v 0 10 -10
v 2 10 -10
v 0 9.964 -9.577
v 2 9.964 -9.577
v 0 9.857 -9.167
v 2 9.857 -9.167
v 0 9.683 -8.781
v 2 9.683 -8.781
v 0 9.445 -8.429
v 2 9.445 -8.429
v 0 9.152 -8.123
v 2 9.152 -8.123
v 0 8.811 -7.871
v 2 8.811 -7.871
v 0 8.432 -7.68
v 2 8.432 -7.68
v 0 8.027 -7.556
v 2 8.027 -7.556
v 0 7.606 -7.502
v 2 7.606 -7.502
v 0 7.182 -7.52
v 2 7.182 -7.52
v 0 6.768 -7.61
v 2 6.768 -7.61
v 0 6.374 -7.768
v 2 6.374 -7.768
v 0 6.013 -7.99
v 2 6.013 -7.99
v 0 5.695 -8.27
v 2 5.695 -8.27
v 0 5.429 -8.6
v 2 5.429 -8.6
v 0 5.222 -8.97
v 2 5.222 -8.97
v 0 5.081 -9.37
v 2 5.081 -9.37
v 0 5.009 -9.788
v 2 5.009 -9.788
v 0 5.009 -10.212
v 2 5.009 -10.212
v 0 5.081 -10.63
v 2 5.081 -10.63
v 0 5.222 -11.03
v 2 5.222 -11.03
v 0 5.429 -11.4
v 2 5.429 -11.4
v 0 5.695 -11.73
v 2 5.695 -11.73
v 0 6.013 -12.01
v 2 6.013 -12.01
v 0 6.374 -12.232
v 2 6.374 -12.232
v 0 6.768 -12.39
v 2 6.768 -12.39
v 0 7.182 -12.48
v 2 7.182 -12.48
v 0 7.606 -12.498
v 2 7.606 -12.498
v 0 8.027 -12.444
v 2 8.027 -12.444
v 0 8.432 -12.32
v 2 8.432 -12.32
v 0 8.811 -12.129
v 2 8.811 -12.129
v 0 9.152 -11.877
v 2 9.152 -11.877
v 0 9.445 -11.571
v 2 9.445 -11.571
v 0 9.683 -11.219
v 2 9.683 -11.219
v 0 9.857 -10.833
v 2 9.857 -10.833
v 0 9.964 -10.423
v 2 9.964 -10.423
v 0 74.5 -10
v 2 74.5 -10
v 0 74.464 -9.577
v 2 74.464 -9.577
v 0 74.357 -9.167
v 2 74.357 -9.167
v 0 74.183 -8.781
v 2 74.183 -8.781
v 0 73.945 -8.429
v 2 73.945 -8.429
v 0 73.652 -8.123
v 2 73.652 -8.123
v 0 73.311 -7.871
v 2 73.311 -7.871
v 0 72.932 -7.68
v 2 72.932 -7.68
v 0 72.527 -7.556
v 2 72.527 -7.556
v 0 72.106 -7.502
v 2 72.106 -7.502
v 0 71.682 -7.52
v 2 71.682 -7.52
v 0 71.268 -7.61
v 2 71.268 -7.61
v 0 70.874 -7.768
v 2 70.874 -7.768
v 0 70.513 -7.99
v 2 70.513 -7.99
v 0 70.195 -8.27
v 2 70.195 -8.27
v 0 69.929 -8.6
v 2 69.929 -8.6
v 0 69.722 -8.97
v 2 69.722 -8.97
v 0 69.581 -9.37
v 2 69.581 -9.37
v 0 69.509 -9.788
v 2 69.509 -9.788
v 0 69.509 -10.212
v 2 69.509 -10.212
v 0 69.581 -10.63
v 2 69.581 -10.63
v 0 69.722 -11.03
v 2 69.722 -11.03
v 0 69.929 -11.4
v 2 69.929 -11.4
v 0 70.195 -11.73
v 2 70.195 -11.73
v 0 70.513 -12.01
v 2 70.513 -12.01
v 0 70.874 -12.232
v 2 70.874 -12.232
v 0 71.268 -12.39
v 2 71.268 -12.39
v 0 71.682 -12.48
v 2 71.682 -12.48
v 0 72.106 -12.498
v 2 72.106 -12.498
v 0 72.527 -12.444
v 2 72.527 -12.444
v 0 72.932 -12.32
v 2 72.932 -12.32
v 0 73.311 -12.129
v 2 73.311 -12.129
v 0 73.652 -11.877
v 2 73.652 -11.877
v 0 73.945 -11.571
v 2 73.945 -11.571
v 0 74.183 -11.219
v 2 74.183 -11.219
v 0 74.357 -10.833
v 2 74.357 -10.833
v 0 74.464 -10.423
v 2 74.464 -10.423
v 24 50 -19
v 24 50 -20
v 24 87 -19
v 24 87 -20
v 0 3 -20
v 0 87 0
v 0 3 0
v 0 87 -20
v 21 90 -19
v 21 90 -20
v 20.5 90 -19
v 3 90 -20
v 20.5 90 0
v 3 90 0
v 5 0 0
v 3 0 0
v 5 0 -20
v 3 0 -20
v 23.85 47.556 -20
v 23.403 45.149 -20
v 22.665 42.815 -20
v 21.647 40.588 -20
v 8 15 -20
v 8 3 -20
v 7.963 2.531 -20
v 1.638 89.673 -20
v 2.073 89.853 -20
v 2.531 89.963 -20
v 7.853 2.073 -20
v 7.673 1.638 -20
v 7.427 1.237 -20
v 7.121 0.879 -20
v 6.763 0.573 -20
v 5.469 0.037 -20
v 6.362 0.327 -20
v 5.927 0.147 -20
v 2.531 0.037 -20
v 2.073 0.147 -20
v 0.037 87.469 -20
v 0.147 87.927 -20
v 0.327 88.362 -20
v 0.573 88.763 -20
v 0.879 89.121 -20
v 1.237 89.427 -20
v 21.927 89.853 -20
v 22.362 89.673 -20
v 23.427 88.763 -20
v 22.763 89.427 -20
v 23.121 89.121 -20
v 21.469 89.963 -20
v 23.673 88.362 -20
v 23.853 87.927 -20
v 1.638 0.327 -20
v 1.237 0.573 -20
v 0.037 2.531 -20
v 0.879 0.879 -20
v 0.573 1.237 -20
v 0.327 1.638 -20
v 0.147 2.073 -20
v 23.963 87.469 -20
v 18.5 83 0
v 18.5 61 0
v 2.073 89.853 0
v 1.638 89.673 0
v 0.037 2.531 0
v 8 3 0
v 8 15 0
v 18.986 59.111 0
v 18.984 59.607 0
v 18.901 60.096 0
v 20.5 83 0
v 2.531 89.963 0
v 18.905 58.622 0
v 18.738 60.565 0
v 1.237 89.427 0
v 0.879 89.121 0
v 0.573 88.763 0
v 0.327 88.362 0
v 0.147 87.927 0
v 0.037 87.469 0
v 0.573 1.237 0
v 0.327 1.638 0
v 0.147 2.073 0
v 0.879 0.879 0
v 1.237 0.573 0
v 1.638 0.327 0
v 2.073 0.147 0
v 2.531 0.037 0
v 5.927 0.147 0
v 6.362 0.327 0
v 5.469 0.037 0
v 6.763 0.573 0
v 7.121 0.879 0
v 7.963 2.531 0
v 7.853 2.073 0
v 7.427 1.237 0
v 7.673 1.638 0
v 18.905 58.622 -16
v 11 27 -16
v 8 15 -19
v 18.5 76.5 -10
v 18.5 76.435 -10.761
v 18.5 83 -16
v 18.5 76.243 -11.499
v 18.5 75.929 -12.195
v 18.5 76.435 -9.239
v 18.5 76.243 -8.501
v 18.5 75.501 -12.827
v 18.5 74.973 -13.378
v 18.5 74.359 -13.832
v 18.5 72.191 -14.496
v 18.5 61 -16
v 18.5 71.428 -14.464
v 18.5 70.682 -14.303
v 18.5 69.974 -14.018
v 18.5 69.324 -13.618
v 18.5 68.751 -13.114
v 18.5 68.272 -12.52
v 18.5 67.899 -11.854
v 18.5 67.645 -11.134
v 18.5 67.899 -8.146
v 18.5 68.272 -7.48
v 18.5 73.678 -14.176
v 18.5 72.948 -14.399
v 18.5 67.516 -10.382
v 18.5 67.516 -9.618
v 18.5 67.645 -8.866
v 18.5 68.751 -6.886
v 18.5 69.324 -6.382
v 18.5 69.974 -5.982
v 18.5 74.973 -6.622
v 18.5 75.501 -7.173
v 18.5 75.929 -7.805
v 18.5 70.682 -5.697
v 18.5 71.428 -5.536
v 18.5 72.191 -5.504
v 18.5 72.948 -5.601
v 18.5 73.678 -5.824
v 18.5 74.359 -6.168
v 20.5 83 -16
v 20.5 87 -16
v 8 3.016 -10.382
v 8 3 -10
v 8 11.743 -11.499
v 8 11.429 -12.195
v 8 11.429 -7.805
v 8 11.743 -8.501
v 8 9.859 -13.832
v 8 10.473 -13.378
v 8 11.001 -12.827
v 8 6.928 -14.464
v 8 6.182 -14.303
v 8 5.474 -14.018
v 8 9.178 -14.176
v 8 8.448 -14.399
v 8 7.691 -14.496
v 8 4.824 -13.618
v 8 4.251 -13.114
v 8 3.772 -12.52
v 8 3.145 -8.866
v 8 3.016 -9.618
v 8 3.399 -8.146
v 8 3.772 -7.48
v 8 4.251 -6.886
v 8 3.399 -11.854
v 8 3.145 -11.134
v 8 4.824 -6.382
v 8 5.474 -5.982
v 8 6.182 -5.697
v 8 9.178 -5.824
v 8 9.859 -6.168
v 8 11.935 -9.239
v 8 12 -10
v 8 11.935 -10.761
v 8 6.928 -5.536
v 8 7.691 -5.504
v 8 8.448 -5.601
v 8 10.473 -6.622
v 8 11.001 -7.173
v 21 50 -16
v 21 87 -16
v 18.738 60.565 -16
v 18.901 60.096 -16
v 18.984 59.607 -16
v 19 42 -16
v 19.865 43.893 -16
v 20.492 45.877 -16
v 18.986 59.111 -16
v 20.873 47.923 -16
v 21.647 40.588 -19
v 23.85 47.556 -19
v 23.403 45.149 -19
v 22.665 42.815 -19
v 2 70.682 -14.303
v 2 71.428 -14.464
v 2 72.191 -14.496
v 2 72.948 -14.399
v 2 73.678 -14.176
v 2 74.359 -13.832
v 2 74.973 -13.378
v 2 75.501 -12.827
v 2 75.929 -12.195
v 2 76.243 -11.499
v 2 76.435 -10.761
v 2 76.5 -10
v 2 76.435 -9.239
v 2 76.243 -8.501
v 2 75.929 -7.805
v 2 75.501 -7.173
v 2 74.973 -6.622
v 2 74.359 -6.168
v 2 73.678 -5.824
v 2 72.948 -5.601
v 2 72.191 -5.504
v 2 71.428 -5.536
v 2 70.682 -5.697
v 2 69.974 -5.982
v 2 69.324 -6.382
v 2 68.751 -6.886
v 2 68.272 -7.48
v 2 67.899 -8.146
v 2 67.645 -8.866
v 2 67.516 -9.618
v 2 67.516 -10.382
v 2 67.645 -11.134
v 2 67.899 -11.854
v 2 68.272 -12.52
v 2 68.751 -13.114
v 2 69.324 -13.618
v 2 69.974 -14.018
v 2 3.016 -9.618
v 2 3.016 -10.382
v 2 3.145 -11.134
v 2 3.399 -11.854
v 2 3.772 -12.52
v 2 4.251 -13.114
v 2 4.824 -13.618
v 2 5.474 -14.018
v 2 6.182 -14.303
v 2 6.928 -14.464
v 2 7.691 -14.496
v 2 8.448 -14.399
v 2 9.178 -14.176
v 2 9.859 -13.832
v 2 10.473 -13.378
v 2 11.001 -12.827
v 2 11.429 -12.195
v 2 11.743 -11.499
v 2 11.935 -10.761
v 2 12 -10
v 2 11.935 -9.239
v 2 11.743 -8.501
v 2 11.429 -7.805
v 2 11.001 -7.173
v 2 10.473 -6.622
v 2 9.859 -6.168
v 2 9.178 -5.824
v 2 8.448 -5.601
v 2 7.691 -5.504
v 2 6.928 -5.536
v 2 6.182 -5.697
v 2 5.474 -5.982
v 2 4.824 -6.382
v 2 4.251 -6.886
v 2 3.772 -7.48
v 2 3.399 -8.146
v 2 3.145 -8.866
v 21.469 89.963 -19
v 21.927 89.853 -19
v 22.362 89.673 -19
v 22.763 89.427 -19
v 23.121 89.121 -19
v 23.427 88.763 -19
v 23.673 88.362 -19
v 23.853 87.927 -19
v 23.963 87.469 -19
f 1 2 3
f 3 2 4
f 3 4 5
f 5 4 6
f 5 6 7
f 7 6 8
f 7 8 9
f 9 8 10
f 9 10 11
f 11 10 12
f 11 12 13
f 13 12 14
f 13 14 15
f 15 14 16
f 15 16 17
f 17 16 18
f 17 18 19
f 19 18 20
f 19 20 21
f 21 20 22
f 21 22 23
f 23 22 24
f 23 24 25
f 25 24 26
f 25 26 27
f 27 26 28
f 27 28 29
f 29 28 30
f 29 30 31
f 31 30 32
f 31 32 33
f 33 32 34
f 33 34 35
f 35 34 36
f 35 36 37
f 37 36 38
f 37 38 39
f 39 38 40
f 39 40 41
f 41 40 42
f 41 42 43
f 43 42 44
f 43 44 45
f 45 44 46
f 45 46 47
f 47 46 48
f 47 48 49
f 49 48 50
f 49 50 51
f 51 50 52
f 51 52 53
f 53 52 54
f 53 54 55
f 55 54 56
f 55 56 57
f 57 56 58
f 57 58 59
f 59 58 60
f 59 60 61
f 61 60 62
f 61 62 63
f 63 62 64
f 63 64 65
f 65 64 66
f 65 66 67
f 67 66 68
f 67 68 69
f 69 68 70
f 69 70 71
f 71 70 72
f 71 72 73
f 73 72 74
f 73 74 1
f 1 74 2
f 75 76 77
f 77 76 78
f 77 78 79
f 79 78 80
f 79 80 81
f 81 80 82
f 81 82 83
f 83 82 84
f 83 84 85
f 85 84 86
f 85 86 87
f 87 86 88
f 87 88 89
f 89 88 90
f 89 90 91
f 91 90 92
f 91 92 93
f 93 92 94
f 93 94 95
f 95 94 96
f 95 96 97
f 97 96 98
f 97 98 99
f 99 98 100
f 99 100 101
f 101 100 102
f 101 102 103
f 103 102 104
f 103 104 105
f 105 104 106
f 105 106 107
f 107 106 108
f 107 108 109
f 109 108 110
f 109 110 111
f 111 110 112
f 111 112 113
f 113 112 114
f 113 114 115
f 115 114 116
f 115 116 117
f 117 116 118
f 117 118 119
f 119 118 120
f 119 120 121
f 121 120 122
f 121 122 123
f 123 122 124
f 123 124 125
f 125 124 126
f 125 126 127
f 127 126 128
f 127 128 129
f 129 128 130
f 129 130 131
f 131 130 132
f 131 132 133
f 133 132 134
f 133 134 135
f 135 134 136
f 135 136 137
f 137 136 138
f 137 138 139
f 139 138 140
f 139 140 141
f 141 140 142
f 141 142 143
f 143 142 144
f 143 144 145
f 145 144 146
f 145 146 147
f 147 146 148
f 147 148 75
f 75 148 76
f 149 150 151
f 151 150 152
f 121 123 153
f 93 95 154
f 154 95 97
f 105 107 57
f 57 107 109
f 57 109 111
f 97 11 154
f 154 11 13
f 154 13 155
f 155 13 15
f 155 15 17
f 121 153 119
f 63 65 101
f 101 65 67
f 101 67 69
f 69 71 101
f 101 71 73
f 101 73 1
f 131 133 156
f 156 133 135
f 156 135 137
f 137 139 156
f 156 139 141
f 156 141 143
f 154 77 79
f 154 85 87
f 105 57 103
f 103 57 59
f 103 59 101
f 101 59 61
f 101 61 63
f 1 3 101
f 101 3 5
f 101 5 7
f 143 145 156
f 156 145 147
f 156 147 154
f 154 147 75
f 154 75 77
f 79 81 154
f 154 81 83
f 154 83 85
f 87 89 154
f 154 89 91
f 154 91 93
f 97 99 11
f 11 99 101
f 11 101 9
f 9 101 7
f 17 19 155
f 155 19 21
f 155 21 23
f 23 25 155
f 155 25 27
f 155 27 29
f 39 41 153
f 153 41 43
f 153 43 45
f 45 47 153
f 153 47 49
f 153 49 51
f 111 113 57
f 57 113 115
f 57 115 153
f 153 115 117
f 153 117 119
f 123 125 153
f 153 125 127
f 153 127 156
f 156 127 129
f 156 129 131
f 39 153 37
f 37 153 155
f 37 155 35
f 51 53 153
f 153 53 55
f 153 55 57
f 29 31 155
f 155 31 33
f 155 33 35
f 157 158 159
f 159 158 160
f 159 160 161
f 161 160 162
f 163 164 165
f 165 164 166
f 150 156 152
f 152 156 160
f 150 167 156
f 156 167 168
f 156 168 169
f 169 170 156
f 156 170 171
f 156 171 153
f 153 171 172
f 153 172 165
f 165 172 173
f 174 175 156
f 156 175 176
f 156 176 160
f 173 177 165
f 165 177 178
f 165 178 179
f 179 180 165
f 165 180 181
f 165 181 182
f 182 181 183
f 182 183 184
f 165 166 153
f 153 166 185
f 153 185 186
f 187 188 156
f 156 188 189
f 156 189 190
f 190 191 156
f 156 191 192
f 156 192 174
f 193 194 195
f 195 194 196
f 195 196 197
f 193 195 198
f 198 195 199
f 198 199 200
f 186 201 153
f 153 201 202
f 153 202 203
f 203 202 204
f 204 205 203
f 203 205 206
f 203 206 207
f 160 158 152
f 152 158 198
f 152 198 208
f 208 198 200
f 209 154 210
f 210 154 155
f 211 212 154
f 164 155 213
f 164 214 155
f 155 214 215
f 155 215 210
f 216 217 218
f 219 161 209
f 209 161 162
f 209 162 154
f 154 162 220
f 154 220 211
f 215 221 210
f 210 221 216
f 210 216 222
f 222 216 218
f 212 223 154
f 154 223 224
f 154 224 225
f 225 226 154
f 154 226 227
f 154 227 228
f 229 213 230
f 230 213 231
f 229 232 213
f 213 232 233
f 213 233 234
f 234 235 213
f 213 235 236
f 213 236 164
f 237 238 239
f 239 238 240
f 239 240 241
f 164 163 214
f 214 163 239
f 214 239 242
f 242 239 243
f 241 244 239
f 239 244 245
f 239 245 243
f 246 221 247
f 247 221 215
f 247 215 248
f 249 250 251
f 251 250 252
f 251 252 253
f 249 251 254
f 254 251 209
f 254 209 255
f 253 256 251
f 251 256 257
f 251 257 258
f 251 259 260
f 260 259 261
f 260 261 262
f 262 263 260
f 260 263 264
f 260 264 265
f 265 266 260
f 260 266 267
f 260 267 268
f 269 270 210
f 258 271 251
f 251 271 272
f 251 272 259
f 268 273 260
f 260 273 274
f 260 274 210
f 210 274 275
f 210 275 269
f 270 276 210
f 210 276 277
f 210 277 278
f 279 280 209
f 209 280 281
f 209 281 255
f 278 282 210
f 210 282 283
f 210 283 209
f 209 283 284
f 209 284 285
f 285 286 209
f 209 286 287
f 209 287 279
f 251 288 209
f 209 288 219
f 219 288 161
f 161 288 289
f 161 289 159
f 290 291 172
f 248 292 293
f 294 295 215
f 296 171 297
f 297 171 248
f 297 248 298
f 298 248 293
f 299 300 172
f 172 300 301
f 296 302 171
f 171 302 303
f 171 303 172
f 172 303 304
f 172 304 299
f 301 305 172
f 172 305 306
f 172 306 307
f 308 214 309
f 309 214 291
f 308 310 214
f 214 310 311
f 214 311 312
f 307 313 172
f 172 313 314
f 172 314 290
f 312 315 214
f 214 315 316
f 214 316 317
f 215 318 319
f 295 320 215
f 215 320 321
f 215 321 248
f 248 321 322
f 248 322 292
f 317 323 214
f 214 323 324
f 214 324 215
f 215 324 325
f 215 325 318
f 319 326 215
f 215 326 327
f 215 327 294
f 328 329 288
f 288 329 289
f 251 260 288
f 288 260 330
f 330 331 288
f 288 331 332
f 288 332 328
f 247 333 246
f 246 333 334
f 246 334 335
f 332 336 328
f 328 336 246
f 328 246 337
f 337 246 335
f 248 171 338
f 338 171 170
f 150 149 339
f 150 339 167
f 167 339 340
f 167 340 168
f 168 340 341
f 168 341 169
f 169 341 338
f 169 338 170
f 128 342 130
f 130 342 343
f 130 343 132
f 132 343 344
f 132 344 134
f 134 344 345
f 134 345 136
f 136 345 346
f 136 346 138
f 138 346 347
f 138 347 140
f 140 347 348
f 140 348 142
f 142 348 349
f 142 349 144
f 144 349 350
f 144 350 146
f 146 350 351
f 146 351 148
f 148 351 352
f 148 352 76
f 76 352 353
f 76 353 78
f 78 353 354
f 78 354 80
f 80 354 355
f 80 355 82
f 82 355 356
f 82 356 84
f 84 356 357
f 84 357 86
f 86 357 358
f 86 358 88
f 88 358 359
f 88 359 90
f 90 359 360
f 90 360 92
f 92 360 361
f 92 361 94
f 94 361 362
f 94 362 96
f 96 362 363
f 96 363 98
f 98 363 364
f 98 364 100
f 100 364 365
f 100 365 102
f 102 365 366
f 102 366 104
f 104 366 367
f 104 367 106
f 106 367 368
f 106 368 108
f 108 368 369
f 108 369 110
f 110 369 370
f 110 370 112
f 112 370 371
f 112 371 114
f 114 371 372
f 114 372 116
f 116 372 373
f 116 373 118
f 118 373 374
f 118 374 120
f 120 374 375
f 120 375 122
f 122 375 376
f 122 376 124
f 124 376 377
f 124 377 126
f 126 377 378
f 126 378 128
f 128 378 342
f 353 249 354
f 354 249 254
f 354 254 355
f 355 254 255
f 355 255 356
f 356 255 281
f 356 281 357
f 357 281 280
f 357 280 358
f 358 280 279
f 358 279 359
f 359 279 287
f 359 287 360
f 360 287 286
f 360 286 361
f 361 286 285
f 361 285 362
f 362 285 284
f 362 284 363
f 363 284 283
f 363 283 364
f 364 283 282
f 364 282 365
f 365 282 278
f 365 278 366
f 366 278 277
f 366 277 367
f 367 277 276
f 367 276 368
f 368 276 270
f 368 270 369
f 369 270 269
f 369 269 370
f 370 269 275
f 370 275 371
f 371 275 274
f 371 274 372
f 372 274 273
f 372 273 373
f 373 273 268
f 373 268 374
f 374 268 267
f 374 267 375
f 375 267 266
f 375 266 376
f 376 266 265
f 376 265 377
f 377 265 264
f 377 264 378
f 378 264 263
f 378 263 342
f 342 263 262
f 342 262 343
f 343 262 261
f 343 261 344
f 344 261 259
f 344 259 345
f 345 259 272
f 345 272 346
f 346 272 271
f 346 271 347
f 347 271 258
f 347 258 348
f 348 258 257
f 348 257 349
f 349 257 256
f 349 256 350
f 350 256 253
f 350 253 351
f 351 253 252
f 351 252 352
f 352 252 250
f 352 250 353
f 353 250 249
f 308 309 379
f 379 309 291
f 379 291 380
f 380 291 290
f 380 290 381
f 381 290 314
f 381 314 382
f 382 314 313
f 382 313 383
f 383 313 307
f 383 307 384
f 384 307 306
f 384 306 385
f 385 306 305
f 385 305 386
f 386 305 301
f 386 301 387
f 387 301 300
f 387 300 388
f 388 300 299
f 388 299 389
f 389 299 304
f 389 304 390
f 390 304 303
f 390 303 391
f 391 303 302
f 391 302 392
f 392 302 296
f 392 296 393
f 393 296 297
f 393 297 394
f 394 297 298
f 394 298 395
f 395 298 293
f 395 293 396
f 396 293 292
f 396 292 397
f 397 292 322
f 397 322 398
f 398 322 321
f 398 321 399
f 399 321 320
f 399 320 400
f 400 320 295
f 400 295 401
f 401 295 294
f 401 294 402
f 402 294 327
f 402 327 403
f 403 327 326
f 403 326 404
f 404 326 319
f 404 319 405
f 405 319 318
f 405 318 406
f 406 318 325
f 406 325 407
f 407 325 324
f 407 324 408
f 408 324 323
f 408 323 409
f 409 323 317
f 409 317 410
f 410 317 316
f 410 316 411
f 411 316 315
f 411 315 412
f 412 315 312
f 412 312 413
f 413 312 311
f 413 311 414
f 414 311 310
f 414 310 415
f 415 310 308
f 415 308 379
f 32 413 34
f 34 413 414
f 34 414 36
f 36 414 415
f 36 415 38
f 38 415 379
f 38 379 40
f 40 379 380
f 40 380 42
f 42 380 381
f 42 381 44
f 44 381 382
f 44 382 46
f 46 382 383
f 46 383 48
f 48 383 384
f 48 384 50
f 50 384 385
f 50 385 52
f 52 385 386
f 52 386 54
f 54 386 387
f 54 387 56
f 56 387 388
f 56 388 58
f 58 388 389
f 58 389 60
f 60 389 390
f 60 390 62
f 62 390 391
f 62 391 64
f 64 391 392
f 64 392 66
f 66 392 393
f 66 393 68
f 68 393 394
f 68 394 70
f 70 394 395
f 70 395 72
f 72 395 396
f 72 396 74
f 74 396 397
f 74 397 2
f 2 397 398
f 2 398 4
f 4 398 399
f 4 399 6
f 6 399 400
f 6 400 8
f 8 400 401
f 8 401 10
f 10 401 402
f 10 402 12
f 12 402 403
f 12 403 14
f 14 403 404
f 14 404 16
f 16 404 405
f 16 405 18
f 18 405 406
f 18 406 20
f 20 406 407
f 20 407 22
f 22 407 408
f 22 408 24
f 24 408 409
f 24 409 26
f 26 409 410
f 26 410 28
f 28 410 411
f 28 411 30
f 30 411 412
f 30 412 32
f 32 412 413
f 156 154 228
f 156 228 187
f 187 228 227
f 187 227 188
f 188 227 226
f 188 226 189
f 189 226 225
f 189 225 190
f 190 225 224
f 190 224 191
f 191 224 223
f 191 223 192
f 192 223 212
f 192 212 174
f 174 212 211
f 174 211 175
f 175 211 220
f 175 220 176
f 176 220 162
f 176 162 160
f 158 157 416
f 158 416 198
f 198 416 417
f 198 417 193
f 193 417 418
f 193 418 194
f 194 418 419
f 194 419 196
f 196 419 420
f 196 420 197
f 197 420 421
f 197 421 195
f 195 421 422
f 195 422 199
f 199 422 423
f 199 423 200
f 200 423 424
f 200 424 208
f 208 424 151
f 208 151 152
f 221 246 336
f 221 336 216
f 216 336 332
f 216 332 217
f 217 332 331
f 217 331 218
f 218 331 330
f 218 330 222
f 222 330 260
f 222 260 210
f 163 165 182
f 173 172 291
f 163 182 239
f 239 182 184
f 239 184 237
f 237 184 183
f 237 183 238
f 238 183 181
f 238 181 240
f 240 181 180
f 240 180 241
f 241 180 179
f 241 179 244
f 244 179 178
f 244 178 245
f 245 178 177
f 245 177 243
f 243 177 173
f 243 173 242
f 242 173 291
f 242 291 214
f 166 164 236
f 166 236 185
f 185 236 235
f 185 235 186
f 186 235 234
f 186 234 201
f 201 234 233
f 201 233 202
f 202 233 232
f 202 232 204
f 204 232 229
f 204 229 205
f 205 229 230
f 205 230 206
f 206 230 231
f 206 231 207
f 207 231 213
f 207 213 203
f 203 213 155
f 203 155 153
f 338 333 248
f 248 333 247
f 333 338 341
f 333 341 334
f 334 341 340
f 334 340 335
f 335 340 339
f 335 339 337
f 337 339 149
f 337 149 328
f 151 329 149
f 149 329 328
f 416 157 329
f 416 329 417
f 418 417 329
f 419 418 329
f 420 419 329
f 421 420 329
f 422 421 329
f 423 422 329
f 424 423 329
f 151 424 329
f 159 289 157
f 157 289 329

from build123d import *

# Parameters (mm, degrees)
SKETCH1_W           = 24
SKETCH1_H           = 90
BOSS_EXTRUDE1_DEPTH = 20
CUT_EXTRUDE1_DEPTH  = 16
CUT_EXTRUDE8_DEPTH  = 10
FILLET1_R           = 20
SKETCH12_R          = 2.5
CUT_EXTRUDE9_DEPTH  = 18.5
SKETCH13_R          = 4.5
CUT_EXTRUDE10_DEPTH = 16.5
FILLET2_R           = 3
CHAMFER1_SIZE       = 3


with BuildPart() as part:
    # Sketch1 → Boss-Extrude1 (new body)
    with BuildSketch(Plane.XY):
        with Locations((12, 45)):
            Rectangle(SKETCH1_W, SKETCH1_H)
    extrude(amount=-BOSS_EXTRUDE1_DEPTH)

    # Sketch4 → Cut-Extrude1 (cut)
    with BuildSketch(Plane.XY):
        Polygon((20.5, 83), (18.5, 83), (18.5, 61), (19.5, 61), (8, 15), (8, 0), (24, 0), (24, 90), (20.5, 90), align=None)
    extrude(amount=-CUT_EXTRUDE1_DEPTH, mode=Mode.SUBTRACT)

    # Sketch9 → Cut-Extrude8 (cut)
    with BuildSketch(Plane(origin=(0, 0, -20), x_dir=(-1, 0, 0), z_dir=(0, 0, -1))):
        Polygon((-24, 0), (-24, 45), (-8, 15), (-8, 0), align=None)
    extrude(amount=-CUT_EXTRUDE8_DEPTH, mode=Mode.SUBTRACT)

    # Fillet1
    fillet1_edges = [part.edges().sort_by_distance(p)[0] for p in [
        (24, 45, -18),
    ]]
    fillet(fillet1_edges, radius=FILLET1_R)

    # Sketch12 → Cut-Extrude9 (cut)
    with BuildSketch(Plane(origin=(18.5, 0, 0), x_dir=(0, 0, -1), z_dir=(1, 0, 0))):
        with Locations(Location((10, 72, 0), (0, 0, 90))):
            Circle(SKETCH12_R)
        with Locations(Location((10, 7.5, 0), (0, 0, 90))):
            Circle(SKETCH12_R)
    extrude(amount=-CUT_EXTRUDE9_DEPTH, mode=Mode.SUBTRACT)

    # Sketch13 → Cut-Extrude10 (cut)
    with BuildSketch(Plane(origin=(18.5, 0, 0), x_dir=(0, 0, -1), z_dir=(1, 0, 0))):
        with Locations(Location((10, 72, 0), (0, 0, 90))):
            Circle(SKETCH13_R)
        with Locations(Location((10, 7.5, 0), (0, 0, 90))):
            Circle(SKETCH13_R)
    extrude(amount=-CUT_EXTRUDE10_DEPTH, mode=Mode.SUBTRACT)

    # Fillet2
    # the kernel refuses this fillet: 3 mm, written as the material it takes off along each edge
    with BuildSketch(Plane(origin=(0, 90, 7.5), x_dir=(1, 0, 0), z_dir=(0, 0, -1)), Plane(origin=(8, 0, -27.5), x_dir=(0, 1, 0), z_dir=(0, 0, 1)), Plane(origin=(0, 0, 7.5), x_dir=(0, 1, 0), z_dir=(0, 0, -1))) as fillet2_piece_1:
        with BuildLine():
            CenterArc((FILLET2_R, FILLET2_R), FILLET2_R, 180, 90)
            Line((0, FILLET2_R), (-FILLET2_R * 0.02, FILLET2_R))
            Line((-FILLET2_R * 0.02, FILLET2_R), (-FILLET2_R * 0.02, -FILLET2_R * 0.02))
            Line((-FILLET2_R * 0.02, -FILLET2_R * 0.02), (FILLET2_R, -FILLET2_R * 0.02))
            Line((FILLET2_R, -FILLET2_R * 0.02), (FILLET2_R, 0))
        make_face()
    extrude(amount=35, mode=Mode.SUBTRACT)
    with BuildSketch(Plane(origin=(24, 90, -8.5), x_dir=(0, -1, 0), z_dir=(0, 0, -1))) as fillet2_piece_2:
        with BuildLine():
            CenterArc((FILLET2_R, FILLET2_R), FILLET2_R, 180, 90)
            Line((0, FILLET2_R), (-FILLET2_R * 0.02, FILLET2_R))
            Line((-FILLET2_R * 0.02, FILLET2_R), (-FILLET2_R * 0.02, -FILLET2_R * 0.02))
            Line((-FILLET2_R * 0.02, -FILLET2_R * 0.02), (FILLET2_R, -FILLET2_R * 0.02))
            Line((FILLET2_R, -FILLET2_R * 0.02), (FILLET2_R, 0))
        make_face()
    extrude(amount=19, mode=Mode.SUBTRACT)
    with BuildSketch(Plane(origin=(19.5, 61, 6.128837665), x_dir=(-0.24253562503633366, -0.9701425001453317, 0), z_dir=(0, 0, -1))) as fillet2_piece_3:
        with BuildLine():
            CenterArc((2.451535066, 3), FILLET2_R, 222.580014358, 47.419985642)
            Line((0.242535625, 0.9701425), (0.198355636, 0.92954535))
            ThreePointArc((0.198355636, 0.92954535), (0.063059263, 0.499623388), (-0.05820855, 0.014552138))
            Line((-0.05820855, 0.014552138), (0, -0.06))
            Line((0, -0.06), (2.451535066, -0.06))
            Line((2.451535066, -0.06), (2.451535066, 0))
        make_face()
    extrude(amount=22.128837665, mode=Mode.SUBTRACT)

    # Chamfer1
    # the kernel refuses this chamfer: 3 mm, written as the material it takes off along each edge
    with BuildSketch(Plane(origin=(21, 87, -16), x_dir=(1, 0, 0), z_dir=(0, -1, 0))) as chamfer1_piece_1:
        Polygon((3 - CHAMFER1_SIZE, 0), (3, -CHAMFER1_SIZE), (3, 0), align=None)
    revolve(axis=Axis((21, 87, -16), (0, 0, 1)), revolution_arc=90, mode=Mode.SUBTRACT)
    with BuildSketch(Plane(origin=(24, 50, -16), x_dir=(-1, 0, 0), z_dir=(0, 1, 0))) as chamfer1_piece_2:
        Polygon((CHAMFER1_SIZE, 0), (0, -CHAMFER1_SIZE), (0, 0), align=None)
    extrude(amount=37, mode=Mode.SUBTRACT)
    with BuildSketch(Plane(origin=(4.369388723, 8.192603855, -16), x_dir=(0, 0, -1), z_dir=(0.47058823529411764, 0.8823529411764706, 0))) as chamfer1_piece_3_section:
        Polygon((CHAMFER1_SIZE, 0), (0, CHAMFER1_SIZE), (0, 0), align=None)
    chamfer1_piece_3 = extrude(amount=36.715048964, mode=Mode.PRIVATE)
    chamfer1_piece_3 = split(chamfer1_piece_3, bisect_by=Plane(origin=(8, 8.192603855, -16), z_dir=(1, 0, 0)), keep=Keep.TOP, mode=Mode.PRIVATE)
    chamfer1_piece_3 = split(chamfer1_piece_3, bisect_by=Plane(origin=(6.184694361, 7.738777446, -16), z_dir=(0.9701425001453319, -0.24253562503633322, 0)), keep=Keep.TOP, mode=Mode.PRIVATE)
    add(chamfer1_piece_3, mode=Mode.SUBTRACT)
    with BuildSketch(Plane(origin=(4, 50, -16), x_dir=(0.8823529411764705, -0.47058823529411764, 0), z_dir=(-0.47058823529411764, -0.8823529411764705, 0))) as chamfer1_piece_4:
        Polygon((20, -CHAMFER1_SIZE), (20 - CHAMFER1_SIZE, 0), (20, 0), align=None)
    revolve(axis=Axis((4, 50, -16), (0, 0, 1)), revolution_arc=28.072486936, mode=Mode.SUBTRACT)
    with BuildSketch(Plane(origin=(21, 90, -16), x_dir=(0, -1, 0), z_dir=(-1, 0, 0))) as chamfer1_piece_5:
        Polygon((CHAMFER1_SIZE, 0), (0, -CHAMFER1_SIZE), (0, 0), align=None)
    extrude(amount=0.5, mode=Mode.SUBTRACT)


solid = part.part
